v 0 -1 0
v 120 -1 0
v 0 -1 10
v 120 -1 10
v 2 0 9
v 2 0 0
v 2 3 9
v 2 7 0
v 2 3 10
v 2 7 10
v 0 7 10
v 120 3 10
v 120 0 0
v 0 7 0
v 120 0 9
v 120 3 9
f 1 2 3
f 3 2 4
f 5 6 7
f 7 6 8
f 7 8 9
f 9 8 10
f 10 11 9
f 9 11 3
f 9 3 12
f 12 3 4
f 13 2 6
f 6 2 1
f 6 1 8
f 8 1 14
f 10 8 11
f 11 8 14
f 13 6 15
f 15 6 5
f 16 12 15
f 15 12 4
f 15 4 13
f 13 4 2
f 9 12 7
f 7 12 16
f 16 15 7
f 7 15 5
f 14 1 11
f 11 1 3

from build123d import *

# Parameters (mm, degrees)
Y_KSEKLIK_EKSTR_ZYON1_DEPTH = 10
IZIM2_W                     = 120
IZIM2_H                     = 1
Y_KSEKLIK_EKSTR_ZYON2_DEPTH = 3
IZIM4_W                     = 2
IZIM4_H                     = 10
Y_KSEKLIK_EKSTR_ZYON3_DEPTH = 4
KES_EKSTR_ZYON1_DEPTH       = 33


with BuildPart() as part:
    # Çizim1 → Yükseklik-Ekstrüzyon1 (new body)
    with BuildSketch(Plane.XY):
        Polygon((0, 0), (-120, 0), (-120, -1), (2, -1), (2, 3), (0, 3), align=None)
    y_kseklik_ekstr_zyon1 = extrude(amount=Y_KSEKLIK_EKSTR_ZYON1_DEPTH)

    # Çizim2 → Yükseklik-Ekstrüzyon2 (add)
    with BuildSketch(Plane(origin=(0, 0, 0), x_dir=(1, 0, 0), z_dir=(0, 1, 0))):
        with Locations((-60, -9.5)):
            Rectangle(IZIM2_W, IZIM2_H)
    y_kseklik_ekstr_zyon2 = extrude(amount=Y_KSEKLIK_EKSTR_ZYON2_DEPTH)

    # Çizim4 → Yükseklik-Ekstrüzyon3 (add)
    with BuildSketch(Plane(origin=(0, 3, 0), x_dir=(1, 0, 0), z_dir=(0, 1, 0))):
        with Locations((1, -5)):
            Rectangle(IZIM4_W, IZIM4_H)
    y_kseklik_ekstr_zyon3 = extrude(amount=Y_KSEKLIK_EKSTR_ZYON3_DEPTH)

    # Aynalama1: Yükseklik-Ekstrüzyon1, Yükseklik-Ekstrüzyon2, Yükseklik-Ekstrüzyon3 across plane
    add(y_kseklik_ekstr_zyon1.mirror(Plane(origin=(0, 0, 10), x_dir=(0, 0, 1), z_dir=(1, 0, 0))))
    add(y_kseklik_ekstr_zyon2.mirror(Plane(origin=(0, 0, 10), x_dir=(0, 0, 1), z_dir=(1, 0, 0))))
    add(y_kseklik_ekstr_zyon3.mirror(Plane(origin=(0, 0, 10), x_dir=(0, 0, 1), z_dir=(1, 0, 0))))

    # Çizim5 → Kes-Ekstrüzyon1 (cut)
    with BuildSketch(Plane(origin=(0, 0, 0), x_dir=(-1, 0, 0), z_dir=(0, 0, -1))):
        Polygon((0, 7), (0, -4.162998524), (124.646798912, -4.162998524), (124.646798912, 13.350515485), (0, 13.350515485), align=None)
    extrude(amount=-KES_EKSTR_ZYON1_DEPTH, mode=Mode.SUBTRACT)


solid = part.part
